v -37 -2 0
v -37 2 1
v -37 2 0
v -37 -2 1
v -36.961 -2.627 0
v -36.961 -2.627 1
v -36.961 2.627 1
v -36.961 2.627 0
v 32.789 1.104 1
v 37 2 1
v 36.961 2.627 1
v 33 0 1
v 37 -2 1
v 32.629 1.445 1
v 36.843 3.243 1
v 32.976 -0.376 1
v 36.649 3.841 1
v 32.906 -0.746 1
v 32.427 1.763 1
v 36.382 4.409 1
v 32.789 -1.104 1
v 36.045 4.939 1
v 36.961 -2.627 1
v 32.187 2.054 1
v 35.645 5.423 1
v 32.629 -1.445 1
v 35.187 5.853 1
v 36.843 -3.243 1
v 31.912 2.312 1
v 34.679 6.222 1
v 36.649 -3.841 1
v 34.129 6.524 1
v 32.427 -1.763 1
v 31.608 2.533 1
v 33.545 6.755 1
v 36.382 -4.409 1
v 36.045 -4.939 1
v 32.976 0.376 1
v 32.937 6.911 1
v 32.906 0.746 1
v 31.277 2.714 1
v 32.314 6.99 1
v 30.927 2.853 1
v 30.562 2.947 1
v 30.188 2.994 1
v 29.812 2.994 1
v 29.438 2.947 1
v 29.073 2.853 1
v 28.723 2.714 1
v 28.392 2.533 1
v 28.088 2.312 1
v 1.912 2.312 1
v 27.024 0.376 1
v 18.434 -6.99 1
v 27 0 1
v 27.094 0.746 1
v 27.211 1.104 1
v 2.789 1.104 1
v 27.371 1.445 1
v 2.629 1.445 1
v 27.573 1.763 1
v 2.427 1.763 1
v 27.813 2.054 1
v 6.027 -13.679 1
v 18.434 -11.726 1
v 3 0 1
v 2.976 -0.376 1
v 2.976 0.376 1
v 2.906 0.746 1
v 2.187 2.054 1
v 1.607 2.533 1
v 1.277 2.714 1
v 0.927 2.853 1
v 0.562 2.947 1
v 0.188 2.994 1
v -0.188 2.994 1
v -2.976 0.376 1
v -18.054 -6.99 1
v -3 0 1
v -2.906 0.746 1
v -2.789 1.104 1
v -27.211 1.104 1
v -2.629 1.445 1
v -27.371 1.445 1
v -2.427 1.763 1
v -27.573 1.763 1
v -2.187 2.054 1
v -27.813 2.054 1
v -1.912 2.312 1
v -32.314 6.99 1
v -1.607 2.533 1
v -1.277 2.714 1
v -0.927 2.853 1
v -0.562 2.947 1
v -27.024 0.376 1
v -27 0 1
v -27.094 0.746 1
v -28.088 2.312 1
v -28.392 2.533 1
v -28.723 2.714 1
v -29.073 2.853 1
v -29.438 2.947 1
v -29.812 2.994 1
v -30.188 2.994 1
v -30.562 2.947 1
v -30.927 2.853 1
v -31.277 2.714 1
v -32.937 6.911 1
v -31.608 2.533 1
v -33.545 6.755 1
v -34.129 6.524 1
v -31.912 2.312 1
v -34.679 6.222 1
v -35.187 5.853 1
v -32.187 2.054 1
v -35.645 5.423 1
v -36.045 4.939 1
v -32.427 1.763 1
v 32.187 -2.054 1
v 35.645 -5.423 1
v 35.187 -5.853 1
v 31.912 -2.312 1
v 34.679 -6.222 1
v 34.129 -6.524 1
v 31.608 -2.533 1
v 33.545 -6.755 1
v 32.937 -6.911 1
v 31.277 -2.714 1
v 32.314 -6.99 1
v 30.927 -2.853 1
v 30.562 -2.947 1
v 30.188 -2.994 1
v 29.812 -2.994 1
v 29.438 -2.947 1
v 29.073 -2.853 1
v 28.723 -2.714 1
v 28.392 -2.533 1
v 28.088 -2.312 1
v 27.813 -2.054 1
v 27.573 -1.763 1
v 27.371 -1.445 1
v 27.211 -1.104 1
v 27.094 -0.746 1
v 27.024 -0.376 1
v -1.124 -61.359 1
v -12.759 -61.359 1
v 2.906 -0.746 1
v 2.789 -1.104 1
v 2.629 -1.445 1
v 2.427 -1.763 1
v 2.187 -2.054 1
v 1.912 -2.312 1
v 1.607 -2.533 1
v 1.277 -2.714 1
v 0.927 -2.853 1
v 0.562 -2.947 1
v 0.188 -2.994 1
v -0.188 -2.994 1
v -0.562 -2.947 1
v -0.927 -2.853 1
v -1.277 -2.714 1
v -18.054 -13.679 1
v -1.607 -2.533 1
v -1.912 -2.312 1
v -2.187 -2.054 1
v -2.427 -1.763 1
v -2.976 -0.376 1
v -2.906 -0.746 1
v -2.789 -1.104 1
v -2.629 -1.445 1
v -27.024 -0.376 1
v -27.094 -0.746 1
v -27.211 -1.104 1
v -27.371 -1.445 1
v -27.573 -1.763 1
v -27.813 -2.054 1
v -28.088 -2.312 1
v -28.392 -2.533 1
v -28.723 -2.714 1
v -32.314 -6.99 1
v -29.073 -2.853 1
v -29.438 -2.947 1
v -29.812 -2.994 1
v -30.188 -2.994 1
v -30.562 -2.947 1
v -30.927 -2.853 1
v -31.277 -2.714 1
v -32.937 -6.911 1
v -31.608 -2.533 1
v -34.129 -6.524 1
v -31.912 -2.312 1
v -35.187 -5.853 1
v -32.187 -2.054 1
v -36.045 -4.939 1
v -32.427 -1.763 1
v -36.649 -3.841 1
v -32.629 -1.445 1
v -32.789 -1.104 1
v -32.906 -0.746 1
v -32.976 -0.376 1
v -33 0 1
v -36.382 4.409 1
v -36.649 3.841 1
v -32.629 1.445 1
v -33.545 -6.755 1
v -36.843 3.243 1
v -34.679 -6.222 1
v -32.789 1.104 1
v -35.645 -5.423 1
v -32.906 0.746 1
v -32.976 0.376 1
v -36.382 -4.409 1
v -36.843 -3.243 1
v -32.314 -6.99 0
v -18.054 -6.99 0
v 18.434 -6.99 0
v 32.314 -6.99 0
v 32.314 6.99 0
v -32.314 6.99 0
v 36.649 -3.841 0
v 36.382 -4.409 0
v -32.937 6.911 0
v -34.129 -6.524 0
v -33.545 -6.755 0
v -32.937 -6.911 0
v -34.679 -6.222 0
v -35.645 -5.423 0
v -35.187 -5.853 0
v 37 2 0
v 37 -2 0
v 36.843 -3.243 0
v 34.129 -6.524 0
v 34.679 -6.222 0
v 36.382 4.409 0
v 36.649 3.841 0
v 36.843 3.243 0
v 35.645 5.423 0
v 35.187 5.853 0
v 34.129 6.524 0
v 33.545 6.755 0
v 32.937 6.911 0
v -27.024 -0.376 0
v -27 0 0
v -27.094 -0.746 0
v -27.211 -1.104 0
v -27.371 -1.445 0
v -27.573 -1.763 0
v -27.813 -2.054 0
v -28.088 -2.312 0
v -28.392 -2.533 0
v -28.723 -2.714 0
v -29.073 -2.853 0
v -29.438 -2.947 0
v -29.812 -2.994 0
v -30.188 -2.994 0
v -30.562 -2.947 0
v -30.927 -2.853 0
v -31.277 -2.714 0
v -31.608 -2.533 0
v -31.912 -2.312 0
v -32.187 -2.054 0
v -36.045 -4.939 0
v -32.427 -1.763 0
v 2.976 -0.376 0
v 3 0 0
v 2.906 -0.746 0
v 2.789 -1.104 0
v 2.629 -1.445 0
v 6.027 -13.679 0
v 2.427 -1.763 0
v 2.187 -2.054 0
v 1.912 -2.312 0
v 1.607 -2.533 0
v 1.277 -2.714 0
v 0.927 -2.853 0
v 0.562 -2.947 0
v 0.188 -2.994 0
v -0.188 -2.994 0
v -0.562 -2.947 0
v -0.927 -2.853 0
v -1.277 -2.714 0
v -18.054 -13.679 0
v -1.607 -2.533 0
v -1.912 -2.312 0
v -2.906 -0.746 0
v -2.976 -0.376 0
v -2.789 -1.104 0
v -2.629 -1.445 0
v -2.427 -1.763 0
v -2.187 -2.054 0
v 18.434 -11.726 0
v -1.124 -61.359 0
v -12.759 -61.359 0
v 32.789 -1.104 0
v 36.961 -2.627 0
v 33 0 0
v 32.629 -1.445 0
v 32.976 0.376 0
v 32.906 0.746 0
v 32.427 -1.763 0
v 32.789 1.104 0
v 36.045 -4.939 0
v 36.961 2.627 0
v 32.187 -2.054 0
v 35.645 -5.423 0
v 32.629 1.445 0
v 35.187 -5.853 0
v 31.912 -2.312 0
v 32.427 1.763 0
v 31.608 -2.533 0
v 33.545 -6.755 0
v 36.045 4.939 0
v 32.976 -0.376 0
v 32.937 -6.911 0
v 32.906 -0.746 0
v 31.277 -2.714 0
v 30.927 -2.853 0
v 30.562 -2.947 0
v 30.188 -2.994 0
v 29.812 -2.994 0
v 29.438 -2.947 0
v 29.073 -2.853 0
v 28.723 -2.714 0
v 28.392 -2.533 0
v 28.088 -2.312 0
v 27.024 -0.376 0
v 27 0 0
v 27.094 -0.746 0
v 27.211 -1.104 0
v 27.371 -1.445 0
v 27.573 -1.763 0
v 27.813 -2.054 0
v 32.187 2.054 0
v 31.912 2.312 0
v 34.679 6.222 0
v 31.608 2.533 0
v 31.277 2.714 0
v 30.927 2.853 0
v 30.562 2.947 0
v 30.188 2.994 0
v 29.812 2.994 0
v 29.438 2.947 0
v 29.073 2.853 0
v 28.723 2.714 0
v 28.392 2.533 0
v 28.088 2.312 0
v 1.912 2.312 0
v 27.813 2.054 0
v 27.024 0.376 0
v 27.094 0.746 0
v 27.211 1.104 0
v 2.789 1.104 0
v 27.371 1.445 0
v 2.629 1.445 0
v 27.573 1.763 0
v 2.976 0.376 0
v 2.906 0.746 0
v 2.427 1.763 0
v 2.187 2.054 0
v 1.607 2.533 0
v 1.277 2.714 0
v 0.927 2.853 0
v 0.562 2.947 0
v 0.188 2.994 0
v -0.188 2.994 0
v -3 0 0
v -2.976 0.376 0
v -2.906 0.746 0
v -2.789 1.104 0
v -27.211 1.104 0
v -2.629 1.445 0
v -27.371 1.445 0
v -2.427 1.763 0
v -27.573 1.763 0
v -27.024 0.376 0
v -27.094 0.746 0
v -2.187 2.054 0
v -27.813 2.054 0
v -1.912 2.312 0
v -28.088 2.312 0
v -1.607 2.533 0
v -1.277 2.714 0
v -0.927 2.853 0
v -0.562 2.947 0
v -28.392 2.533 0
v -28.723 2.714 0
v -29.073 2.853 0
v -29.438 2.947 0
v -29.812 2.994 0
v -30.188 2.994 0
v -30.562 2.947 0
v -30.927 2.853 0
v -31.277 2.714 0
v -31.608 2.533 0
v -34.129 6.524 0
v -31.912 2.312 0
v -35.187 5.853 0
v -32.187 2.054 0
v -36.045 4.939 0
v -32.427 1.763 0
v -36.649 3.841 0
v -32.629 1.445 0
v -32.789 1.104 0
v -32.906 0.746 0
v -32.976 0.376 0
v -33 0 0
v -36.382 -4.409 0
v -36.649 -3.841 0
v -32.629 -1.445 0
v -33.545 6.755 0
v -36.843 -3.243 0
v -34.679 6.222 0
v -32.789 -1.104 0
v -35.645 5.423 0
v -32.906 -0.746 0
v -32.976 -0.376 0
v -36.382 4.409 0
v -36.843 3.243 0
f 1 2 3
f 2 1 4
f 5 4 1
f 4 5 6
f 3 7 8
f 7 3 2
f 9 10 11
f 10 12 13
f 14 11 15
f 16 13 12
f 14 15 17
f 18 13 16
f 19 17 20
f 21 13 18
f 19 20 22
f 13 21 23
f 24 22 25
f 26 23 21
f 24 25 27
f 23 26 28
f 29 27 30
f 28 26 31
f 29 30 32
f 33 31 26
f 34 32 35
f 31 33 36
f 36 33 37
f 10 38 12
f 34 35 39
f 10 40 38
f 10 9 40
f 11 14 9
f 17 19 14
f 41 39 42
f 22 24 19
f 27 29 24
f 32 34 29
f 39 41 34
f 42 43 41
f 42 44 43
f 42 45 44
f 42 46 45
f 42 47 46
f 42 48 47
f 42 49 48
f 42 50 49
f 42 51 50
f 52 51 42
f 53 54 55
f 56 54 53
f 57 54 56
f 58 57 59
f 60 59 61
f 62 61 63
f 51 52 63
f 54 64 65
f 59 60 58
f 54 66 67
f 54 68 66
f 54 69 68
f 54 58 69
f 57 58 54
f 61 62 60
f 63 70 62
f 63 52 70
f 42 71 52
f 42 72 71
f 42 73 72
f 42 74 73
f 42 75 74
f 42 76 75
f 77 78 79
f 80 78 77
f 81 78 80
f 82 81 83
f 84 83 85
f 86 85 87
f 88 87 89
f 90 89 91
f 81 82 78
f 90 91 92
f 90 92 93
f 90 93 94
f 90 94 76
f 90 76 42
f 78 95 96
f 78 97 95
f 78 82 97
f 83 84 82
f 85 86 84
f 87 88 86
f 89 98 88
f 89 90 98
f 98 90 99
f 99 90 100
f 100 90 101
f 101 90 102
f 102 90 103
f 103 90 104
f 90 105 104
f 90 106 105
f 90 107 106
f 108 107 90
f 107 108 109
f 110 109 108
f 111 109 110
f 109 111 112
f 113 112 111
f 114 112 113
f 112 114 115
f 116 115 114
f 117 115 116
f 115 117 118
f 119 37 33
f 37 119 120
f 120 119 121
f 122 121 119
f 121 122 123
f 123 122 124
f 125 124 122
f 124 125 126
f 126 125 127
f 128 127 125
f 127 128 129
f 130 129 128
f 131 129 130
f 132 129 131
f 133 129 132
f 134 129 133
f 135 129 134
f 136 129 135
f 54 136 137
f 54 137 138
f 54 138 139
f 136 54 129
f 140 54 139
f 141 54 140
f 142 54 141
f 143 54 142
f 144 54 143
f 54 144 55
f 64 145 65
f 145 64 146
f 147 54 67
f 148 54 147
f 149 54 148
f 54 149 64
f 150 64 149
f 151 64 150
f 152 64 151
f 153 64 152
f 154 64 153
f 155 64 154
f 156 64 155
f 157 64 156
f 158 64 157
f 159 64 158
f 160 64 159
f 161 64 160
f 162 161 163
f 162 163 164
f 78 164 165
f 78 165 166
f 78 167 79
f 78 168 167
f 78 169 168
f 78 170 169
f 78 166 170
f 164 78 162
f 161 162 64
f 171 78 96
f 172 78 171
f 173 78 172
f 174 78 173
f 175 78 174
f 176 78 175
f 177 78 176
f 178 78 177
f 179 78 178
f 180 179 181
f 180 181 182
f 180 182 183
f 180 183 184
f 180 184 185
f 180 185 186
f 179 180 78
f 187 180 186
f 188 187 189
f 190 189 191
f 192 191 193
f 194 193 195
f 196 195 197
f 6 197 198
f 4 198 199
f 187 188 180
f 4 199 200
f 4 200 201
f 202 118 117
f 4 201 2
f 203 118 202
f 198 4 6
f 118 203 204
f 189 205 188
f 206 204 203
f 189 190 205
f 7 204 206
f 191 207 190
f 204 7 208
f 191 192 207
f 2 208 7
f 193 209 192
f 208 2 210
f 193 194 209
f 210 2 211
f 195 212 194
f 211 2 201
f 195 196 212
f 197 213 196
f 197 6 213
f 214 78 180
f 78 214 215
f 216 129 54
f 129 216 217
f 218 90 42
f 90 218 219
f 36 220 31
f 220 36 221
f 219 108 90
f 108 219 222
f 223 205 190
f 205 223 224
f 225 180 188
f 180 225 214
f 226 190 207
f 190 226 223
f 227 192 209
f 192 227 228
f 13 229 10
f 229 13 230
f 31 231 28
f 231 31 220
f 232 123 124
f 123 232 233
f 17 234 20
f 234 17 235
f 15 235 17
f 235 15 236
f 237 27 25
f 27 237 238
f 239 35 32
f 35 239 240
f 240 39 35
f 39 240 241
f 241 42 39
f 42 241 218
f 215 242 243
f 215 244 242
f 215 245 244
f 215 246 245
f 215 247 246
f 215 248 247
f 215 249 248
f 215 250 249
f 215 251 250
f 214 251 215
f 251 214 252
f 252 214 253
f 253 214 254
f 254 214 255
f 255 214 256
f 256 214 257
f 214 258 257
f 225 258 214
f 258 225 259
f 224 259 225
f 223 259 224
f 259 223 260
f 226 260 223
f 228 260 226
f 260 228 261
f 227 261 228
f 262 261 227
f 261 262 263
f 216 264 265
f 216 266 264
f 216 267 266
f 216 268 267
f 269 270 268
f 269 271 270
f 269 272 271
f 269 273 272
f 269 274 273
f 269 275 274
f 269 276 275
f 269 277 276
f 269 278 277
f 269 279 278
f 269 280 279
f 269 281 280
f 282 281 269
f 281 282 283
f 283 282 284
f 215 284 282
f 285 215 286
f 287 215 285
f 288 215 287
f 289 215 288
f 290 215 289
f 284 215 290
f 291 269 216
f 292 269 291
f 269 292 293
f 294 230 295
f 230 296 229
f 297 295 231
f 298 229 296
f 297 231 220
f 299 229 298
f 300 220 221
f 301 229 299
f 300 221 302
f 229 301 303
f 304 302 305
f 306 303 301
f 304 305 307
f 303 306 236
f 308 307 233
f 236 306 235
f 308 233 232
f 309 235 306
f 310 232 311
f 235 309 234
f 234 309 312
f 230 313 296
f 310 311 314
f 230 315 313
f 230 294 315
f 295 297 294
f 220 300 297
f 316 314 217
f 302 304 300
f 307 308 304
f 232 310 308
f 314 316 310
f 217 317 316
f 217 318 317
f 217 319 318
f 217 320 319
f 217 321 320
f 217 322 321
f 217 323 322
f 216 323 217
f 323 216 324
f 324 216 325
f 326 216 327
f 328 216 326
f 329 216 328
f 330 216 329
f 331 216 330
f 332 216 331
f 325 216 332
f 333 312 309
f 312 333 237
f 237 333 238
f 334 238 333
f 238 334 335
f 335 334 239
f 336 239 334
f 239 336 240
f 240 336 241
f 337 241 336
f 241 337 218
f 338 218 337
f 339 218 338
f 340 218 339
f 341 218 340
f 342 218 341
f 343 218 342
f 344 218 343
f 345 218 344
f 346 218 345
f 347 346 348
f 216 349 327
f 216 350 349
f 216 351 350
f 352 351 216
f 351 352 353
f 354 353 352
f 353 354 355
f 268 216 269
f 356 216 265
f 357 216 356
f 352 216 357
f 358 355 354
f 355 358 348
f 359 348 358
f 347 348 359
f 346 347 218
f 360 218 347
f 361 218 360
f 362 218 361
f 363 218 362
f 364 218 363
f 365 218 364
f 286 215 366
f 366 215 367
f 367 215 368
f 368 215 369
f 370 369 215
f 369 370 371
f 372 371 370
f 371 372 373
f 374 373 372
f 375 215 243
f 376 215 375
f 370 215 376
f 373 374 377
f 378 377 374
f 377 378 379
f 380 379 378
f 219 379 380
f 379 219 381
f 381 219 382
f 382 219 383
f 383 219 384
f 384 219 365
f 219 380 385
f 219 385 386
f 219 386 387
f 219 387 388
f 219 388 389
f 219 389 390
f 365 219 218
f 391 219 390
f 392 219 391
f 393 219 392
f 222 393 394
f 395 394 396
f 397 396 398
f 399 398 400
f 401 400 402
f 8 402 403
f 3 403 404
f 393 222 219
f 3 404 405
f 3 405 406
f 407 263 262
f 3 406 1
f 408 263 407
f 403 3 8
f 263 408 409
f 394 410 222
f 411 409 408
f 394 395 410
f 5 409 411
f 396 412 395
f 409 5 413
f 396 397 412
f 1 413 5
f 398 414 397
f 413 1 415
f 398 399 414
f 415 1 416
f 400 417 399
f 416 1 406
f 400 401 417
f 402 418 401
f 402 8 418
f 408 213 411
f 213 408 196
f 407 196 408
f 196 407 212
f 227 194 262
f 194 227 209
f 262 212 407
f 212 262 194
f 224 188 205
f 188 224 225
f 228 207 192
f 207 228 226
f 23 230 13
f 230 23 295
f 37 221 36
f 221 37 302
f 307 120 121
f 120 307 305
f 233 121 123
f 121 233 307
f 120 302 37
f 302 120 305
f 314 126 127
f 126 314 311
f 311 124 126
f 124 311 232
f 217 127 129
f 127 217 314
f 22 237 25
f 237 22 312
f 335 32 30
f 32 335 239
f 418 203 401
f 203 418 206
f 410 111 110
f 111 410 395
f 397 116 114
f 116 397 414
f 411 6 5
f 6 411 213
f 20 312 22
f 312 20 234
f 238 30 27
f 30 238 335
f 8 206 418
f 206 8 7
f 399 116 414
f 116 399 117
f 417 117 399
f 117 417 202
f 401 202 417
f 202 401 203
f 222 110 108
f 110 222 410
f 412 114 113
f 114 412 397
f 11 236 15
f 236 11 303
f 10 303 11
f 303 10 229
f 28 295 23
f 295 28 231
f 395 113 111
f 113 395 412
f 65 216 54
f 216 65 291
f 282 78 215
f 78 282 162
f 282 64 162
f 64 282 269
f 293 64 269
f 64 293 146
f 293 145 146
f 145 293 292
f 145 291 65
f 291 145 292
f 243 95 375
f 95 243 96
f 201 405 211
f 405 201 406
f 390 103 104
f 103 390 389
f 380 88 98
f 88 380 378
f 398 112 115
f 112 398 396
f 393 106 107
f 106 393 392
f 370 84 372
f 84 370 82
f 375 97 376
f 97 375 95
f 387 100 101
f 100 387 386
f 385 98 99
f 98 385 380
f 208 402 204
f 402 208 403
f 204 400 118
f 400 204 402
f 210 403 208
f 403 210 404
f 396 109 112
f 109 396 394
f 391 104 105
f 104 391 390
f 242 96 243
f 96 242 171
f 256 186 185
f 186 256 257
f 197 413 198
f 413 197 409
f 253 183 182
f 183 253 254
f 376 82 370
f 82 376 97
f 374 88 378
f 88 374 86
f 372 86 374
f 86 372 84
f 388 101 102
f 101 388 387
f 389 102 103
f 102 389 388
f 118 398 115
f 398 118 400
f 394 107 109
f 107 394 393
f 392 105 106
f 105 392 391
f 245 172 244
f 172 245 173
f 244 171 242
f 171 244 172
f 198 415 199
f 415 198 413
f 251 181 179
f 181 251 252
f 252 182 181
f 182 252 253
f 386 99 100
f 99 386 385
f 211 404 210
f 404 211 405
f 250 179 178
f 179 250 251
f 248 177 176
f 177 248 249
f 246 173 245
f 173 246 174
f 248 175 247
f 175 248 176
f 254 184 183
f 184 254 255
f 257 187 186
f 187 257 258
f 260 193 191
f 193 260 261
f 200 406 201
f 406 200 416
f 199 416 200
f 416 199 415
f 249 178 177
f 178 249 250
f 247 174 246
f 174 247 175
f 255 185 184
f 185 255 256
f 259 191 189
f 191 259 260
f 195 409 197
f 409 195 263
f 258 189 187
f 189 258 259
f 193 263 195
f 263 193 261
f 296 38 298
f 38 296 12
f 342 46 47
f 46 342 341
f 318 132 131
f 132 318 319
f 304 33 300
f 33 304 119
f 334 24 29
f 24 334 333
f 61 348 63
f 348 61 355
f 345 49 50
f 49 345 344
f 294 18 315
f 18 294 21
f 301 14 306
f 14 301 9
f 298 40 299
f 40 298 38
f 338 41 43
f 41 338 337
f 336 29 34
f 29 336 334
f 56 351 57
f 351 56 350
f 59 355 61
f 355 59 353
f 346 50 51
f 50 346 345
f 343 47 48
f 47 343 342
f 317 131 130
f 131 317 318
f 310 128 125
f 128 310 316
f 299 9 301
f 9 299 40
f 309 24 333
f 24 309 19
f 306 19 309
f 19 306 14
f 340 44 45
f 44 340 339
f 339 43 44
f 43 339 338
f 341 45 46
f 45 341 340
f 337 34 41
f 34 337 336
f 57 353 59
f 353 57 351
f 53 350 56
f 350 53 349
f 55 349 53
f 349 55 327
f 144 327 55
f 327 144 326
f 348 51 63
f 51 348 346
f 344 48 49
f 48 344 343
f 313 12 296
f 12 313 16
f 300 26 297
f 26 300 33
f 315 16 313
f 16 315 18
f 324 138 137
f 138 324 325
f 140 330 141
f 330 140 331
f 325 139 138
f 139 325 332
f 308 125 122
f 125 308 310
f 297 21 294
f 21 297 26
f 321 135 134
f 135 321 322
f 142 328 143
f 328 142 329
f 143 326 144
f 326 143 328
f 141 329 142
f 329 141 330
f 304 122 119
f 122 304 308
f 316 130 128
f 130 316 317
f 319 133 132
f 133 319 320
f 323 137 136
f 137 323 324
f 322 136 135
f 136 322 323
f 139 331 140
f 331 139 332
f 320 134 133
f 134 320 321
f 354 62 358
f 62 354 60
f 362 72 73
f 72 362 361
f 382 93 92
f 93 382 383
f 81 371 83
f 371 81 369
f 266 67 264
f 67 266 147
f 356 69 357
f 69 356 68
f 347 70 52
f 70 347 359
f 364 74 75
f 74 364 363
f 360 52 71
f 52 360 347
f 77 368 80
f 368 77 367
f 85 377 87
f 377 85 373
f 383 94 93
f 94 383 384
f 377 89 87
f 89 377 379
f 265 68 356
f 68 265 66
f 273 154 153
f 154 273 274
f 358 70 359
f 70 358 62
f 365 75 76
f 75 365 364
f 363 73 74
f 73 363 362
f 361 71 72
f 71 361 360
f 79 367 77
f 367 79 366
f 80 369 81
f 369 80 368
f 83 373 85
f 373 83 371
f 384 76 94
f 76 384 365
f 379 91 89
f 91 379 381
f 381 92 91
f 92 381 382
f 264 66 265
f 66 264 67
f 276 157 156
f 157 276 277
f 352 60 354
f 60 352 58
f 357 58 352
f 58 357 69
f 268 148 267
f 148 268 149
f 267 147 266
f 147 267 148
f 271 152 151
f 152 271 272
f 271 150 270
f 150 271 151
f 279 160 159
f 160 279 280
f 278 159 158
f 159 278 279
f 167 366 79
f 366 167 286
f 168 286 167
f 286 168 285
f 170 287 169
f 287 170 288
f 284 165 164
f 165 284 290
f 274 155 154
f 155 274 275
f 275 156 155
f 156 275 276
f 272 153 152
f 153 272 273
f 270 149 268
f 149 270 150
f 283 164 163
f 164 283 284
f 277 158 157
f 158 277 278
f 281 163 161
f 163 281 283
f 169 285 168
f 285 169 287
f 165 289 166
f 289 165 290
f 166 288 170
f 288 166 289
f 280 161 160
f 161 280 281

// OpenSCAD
$fn = 50;


difference() {
	union() {
		translate(v = [0, 0, 0]) {
			rotate(a = [0, 0, 0]) {
				hull() {
					translate(v = [-32.0000000000, 2.0000000000, 0]) {
						rotate(a = [0, 0, 0]) {
							translate(v = [0, 0, 0]) {
								rotate(a = [0, 0, 0]) {
									cylinder(h = 1, r = 5);
								}
							}
						}
					}
					translate(v = [32.0000000000, 2.0000000000, 0]) {
						rotate(a = [0, 0, 0]) {
							translate(v = [0, 0, 0]) {
								rotate(a = [0, 0, 0]) {
									cylinder(h = 1, r = 5);
								}
							}
						}
					}
					translate(v = [-32.0000000000, -2.0000000000, 0]) {
						rotate(a = [0, 0, 0]) {
							translate(v = [0, 0, 0]) {
								rotate(a = [0, 0, 0]) {
									cylinder(h = 1, r = 5);
								}
							}
						}
					}
					translate(v = [32.0000000000, -2.0000000000, 0]) {
						rotate(a = [0, 0, 0]) {
							translate(v = [0, 0, 0]) {
								rotate(a = [0, 0, 0]) {
									cylinder(h = 1, r = 5);
								}
							}
						}
					}
				}
			}
		}
		translate(v = [0, -5, 0]) {
			rotate(a = [0, 0, 0]) {
				linear_extrude(height = 1) {
					text(font = "DejaVu Sans Mono:style=Bold", halign = "center", size = 57.0000000000, text = "7", valign = "top");
				}
			}
		}
	}
	union() {
		translate(v = [-30.0000000000, 0.0000000000, -125.0000000000]) {
			rotate(a = [0, 0, 0]) {
				cylinder(h = 250, r = 3.0000000000);
			}
		}
		translate(v = [30.0000000000, 0.0000000000, -125.0000000000]) {
			rotate(a = [0, 0, 0]) {
				cylinder(h = 250, r = 3.0000000000);
			}
		}
		translate(v = [30.0000000000, 0.0000000000, -125.0000000000]) {
			rotate(a = [0, 0, 0]) {
				cylinder(h = 250, r = 3.0000000000);
			}
		}
		translate(v = [0, 0, -125.0000000000]) {
			rotate(a = [0, 0, 0]) {
				cylinder(h = 250, r = 3.0000000000);
			}
		}
	}
}
